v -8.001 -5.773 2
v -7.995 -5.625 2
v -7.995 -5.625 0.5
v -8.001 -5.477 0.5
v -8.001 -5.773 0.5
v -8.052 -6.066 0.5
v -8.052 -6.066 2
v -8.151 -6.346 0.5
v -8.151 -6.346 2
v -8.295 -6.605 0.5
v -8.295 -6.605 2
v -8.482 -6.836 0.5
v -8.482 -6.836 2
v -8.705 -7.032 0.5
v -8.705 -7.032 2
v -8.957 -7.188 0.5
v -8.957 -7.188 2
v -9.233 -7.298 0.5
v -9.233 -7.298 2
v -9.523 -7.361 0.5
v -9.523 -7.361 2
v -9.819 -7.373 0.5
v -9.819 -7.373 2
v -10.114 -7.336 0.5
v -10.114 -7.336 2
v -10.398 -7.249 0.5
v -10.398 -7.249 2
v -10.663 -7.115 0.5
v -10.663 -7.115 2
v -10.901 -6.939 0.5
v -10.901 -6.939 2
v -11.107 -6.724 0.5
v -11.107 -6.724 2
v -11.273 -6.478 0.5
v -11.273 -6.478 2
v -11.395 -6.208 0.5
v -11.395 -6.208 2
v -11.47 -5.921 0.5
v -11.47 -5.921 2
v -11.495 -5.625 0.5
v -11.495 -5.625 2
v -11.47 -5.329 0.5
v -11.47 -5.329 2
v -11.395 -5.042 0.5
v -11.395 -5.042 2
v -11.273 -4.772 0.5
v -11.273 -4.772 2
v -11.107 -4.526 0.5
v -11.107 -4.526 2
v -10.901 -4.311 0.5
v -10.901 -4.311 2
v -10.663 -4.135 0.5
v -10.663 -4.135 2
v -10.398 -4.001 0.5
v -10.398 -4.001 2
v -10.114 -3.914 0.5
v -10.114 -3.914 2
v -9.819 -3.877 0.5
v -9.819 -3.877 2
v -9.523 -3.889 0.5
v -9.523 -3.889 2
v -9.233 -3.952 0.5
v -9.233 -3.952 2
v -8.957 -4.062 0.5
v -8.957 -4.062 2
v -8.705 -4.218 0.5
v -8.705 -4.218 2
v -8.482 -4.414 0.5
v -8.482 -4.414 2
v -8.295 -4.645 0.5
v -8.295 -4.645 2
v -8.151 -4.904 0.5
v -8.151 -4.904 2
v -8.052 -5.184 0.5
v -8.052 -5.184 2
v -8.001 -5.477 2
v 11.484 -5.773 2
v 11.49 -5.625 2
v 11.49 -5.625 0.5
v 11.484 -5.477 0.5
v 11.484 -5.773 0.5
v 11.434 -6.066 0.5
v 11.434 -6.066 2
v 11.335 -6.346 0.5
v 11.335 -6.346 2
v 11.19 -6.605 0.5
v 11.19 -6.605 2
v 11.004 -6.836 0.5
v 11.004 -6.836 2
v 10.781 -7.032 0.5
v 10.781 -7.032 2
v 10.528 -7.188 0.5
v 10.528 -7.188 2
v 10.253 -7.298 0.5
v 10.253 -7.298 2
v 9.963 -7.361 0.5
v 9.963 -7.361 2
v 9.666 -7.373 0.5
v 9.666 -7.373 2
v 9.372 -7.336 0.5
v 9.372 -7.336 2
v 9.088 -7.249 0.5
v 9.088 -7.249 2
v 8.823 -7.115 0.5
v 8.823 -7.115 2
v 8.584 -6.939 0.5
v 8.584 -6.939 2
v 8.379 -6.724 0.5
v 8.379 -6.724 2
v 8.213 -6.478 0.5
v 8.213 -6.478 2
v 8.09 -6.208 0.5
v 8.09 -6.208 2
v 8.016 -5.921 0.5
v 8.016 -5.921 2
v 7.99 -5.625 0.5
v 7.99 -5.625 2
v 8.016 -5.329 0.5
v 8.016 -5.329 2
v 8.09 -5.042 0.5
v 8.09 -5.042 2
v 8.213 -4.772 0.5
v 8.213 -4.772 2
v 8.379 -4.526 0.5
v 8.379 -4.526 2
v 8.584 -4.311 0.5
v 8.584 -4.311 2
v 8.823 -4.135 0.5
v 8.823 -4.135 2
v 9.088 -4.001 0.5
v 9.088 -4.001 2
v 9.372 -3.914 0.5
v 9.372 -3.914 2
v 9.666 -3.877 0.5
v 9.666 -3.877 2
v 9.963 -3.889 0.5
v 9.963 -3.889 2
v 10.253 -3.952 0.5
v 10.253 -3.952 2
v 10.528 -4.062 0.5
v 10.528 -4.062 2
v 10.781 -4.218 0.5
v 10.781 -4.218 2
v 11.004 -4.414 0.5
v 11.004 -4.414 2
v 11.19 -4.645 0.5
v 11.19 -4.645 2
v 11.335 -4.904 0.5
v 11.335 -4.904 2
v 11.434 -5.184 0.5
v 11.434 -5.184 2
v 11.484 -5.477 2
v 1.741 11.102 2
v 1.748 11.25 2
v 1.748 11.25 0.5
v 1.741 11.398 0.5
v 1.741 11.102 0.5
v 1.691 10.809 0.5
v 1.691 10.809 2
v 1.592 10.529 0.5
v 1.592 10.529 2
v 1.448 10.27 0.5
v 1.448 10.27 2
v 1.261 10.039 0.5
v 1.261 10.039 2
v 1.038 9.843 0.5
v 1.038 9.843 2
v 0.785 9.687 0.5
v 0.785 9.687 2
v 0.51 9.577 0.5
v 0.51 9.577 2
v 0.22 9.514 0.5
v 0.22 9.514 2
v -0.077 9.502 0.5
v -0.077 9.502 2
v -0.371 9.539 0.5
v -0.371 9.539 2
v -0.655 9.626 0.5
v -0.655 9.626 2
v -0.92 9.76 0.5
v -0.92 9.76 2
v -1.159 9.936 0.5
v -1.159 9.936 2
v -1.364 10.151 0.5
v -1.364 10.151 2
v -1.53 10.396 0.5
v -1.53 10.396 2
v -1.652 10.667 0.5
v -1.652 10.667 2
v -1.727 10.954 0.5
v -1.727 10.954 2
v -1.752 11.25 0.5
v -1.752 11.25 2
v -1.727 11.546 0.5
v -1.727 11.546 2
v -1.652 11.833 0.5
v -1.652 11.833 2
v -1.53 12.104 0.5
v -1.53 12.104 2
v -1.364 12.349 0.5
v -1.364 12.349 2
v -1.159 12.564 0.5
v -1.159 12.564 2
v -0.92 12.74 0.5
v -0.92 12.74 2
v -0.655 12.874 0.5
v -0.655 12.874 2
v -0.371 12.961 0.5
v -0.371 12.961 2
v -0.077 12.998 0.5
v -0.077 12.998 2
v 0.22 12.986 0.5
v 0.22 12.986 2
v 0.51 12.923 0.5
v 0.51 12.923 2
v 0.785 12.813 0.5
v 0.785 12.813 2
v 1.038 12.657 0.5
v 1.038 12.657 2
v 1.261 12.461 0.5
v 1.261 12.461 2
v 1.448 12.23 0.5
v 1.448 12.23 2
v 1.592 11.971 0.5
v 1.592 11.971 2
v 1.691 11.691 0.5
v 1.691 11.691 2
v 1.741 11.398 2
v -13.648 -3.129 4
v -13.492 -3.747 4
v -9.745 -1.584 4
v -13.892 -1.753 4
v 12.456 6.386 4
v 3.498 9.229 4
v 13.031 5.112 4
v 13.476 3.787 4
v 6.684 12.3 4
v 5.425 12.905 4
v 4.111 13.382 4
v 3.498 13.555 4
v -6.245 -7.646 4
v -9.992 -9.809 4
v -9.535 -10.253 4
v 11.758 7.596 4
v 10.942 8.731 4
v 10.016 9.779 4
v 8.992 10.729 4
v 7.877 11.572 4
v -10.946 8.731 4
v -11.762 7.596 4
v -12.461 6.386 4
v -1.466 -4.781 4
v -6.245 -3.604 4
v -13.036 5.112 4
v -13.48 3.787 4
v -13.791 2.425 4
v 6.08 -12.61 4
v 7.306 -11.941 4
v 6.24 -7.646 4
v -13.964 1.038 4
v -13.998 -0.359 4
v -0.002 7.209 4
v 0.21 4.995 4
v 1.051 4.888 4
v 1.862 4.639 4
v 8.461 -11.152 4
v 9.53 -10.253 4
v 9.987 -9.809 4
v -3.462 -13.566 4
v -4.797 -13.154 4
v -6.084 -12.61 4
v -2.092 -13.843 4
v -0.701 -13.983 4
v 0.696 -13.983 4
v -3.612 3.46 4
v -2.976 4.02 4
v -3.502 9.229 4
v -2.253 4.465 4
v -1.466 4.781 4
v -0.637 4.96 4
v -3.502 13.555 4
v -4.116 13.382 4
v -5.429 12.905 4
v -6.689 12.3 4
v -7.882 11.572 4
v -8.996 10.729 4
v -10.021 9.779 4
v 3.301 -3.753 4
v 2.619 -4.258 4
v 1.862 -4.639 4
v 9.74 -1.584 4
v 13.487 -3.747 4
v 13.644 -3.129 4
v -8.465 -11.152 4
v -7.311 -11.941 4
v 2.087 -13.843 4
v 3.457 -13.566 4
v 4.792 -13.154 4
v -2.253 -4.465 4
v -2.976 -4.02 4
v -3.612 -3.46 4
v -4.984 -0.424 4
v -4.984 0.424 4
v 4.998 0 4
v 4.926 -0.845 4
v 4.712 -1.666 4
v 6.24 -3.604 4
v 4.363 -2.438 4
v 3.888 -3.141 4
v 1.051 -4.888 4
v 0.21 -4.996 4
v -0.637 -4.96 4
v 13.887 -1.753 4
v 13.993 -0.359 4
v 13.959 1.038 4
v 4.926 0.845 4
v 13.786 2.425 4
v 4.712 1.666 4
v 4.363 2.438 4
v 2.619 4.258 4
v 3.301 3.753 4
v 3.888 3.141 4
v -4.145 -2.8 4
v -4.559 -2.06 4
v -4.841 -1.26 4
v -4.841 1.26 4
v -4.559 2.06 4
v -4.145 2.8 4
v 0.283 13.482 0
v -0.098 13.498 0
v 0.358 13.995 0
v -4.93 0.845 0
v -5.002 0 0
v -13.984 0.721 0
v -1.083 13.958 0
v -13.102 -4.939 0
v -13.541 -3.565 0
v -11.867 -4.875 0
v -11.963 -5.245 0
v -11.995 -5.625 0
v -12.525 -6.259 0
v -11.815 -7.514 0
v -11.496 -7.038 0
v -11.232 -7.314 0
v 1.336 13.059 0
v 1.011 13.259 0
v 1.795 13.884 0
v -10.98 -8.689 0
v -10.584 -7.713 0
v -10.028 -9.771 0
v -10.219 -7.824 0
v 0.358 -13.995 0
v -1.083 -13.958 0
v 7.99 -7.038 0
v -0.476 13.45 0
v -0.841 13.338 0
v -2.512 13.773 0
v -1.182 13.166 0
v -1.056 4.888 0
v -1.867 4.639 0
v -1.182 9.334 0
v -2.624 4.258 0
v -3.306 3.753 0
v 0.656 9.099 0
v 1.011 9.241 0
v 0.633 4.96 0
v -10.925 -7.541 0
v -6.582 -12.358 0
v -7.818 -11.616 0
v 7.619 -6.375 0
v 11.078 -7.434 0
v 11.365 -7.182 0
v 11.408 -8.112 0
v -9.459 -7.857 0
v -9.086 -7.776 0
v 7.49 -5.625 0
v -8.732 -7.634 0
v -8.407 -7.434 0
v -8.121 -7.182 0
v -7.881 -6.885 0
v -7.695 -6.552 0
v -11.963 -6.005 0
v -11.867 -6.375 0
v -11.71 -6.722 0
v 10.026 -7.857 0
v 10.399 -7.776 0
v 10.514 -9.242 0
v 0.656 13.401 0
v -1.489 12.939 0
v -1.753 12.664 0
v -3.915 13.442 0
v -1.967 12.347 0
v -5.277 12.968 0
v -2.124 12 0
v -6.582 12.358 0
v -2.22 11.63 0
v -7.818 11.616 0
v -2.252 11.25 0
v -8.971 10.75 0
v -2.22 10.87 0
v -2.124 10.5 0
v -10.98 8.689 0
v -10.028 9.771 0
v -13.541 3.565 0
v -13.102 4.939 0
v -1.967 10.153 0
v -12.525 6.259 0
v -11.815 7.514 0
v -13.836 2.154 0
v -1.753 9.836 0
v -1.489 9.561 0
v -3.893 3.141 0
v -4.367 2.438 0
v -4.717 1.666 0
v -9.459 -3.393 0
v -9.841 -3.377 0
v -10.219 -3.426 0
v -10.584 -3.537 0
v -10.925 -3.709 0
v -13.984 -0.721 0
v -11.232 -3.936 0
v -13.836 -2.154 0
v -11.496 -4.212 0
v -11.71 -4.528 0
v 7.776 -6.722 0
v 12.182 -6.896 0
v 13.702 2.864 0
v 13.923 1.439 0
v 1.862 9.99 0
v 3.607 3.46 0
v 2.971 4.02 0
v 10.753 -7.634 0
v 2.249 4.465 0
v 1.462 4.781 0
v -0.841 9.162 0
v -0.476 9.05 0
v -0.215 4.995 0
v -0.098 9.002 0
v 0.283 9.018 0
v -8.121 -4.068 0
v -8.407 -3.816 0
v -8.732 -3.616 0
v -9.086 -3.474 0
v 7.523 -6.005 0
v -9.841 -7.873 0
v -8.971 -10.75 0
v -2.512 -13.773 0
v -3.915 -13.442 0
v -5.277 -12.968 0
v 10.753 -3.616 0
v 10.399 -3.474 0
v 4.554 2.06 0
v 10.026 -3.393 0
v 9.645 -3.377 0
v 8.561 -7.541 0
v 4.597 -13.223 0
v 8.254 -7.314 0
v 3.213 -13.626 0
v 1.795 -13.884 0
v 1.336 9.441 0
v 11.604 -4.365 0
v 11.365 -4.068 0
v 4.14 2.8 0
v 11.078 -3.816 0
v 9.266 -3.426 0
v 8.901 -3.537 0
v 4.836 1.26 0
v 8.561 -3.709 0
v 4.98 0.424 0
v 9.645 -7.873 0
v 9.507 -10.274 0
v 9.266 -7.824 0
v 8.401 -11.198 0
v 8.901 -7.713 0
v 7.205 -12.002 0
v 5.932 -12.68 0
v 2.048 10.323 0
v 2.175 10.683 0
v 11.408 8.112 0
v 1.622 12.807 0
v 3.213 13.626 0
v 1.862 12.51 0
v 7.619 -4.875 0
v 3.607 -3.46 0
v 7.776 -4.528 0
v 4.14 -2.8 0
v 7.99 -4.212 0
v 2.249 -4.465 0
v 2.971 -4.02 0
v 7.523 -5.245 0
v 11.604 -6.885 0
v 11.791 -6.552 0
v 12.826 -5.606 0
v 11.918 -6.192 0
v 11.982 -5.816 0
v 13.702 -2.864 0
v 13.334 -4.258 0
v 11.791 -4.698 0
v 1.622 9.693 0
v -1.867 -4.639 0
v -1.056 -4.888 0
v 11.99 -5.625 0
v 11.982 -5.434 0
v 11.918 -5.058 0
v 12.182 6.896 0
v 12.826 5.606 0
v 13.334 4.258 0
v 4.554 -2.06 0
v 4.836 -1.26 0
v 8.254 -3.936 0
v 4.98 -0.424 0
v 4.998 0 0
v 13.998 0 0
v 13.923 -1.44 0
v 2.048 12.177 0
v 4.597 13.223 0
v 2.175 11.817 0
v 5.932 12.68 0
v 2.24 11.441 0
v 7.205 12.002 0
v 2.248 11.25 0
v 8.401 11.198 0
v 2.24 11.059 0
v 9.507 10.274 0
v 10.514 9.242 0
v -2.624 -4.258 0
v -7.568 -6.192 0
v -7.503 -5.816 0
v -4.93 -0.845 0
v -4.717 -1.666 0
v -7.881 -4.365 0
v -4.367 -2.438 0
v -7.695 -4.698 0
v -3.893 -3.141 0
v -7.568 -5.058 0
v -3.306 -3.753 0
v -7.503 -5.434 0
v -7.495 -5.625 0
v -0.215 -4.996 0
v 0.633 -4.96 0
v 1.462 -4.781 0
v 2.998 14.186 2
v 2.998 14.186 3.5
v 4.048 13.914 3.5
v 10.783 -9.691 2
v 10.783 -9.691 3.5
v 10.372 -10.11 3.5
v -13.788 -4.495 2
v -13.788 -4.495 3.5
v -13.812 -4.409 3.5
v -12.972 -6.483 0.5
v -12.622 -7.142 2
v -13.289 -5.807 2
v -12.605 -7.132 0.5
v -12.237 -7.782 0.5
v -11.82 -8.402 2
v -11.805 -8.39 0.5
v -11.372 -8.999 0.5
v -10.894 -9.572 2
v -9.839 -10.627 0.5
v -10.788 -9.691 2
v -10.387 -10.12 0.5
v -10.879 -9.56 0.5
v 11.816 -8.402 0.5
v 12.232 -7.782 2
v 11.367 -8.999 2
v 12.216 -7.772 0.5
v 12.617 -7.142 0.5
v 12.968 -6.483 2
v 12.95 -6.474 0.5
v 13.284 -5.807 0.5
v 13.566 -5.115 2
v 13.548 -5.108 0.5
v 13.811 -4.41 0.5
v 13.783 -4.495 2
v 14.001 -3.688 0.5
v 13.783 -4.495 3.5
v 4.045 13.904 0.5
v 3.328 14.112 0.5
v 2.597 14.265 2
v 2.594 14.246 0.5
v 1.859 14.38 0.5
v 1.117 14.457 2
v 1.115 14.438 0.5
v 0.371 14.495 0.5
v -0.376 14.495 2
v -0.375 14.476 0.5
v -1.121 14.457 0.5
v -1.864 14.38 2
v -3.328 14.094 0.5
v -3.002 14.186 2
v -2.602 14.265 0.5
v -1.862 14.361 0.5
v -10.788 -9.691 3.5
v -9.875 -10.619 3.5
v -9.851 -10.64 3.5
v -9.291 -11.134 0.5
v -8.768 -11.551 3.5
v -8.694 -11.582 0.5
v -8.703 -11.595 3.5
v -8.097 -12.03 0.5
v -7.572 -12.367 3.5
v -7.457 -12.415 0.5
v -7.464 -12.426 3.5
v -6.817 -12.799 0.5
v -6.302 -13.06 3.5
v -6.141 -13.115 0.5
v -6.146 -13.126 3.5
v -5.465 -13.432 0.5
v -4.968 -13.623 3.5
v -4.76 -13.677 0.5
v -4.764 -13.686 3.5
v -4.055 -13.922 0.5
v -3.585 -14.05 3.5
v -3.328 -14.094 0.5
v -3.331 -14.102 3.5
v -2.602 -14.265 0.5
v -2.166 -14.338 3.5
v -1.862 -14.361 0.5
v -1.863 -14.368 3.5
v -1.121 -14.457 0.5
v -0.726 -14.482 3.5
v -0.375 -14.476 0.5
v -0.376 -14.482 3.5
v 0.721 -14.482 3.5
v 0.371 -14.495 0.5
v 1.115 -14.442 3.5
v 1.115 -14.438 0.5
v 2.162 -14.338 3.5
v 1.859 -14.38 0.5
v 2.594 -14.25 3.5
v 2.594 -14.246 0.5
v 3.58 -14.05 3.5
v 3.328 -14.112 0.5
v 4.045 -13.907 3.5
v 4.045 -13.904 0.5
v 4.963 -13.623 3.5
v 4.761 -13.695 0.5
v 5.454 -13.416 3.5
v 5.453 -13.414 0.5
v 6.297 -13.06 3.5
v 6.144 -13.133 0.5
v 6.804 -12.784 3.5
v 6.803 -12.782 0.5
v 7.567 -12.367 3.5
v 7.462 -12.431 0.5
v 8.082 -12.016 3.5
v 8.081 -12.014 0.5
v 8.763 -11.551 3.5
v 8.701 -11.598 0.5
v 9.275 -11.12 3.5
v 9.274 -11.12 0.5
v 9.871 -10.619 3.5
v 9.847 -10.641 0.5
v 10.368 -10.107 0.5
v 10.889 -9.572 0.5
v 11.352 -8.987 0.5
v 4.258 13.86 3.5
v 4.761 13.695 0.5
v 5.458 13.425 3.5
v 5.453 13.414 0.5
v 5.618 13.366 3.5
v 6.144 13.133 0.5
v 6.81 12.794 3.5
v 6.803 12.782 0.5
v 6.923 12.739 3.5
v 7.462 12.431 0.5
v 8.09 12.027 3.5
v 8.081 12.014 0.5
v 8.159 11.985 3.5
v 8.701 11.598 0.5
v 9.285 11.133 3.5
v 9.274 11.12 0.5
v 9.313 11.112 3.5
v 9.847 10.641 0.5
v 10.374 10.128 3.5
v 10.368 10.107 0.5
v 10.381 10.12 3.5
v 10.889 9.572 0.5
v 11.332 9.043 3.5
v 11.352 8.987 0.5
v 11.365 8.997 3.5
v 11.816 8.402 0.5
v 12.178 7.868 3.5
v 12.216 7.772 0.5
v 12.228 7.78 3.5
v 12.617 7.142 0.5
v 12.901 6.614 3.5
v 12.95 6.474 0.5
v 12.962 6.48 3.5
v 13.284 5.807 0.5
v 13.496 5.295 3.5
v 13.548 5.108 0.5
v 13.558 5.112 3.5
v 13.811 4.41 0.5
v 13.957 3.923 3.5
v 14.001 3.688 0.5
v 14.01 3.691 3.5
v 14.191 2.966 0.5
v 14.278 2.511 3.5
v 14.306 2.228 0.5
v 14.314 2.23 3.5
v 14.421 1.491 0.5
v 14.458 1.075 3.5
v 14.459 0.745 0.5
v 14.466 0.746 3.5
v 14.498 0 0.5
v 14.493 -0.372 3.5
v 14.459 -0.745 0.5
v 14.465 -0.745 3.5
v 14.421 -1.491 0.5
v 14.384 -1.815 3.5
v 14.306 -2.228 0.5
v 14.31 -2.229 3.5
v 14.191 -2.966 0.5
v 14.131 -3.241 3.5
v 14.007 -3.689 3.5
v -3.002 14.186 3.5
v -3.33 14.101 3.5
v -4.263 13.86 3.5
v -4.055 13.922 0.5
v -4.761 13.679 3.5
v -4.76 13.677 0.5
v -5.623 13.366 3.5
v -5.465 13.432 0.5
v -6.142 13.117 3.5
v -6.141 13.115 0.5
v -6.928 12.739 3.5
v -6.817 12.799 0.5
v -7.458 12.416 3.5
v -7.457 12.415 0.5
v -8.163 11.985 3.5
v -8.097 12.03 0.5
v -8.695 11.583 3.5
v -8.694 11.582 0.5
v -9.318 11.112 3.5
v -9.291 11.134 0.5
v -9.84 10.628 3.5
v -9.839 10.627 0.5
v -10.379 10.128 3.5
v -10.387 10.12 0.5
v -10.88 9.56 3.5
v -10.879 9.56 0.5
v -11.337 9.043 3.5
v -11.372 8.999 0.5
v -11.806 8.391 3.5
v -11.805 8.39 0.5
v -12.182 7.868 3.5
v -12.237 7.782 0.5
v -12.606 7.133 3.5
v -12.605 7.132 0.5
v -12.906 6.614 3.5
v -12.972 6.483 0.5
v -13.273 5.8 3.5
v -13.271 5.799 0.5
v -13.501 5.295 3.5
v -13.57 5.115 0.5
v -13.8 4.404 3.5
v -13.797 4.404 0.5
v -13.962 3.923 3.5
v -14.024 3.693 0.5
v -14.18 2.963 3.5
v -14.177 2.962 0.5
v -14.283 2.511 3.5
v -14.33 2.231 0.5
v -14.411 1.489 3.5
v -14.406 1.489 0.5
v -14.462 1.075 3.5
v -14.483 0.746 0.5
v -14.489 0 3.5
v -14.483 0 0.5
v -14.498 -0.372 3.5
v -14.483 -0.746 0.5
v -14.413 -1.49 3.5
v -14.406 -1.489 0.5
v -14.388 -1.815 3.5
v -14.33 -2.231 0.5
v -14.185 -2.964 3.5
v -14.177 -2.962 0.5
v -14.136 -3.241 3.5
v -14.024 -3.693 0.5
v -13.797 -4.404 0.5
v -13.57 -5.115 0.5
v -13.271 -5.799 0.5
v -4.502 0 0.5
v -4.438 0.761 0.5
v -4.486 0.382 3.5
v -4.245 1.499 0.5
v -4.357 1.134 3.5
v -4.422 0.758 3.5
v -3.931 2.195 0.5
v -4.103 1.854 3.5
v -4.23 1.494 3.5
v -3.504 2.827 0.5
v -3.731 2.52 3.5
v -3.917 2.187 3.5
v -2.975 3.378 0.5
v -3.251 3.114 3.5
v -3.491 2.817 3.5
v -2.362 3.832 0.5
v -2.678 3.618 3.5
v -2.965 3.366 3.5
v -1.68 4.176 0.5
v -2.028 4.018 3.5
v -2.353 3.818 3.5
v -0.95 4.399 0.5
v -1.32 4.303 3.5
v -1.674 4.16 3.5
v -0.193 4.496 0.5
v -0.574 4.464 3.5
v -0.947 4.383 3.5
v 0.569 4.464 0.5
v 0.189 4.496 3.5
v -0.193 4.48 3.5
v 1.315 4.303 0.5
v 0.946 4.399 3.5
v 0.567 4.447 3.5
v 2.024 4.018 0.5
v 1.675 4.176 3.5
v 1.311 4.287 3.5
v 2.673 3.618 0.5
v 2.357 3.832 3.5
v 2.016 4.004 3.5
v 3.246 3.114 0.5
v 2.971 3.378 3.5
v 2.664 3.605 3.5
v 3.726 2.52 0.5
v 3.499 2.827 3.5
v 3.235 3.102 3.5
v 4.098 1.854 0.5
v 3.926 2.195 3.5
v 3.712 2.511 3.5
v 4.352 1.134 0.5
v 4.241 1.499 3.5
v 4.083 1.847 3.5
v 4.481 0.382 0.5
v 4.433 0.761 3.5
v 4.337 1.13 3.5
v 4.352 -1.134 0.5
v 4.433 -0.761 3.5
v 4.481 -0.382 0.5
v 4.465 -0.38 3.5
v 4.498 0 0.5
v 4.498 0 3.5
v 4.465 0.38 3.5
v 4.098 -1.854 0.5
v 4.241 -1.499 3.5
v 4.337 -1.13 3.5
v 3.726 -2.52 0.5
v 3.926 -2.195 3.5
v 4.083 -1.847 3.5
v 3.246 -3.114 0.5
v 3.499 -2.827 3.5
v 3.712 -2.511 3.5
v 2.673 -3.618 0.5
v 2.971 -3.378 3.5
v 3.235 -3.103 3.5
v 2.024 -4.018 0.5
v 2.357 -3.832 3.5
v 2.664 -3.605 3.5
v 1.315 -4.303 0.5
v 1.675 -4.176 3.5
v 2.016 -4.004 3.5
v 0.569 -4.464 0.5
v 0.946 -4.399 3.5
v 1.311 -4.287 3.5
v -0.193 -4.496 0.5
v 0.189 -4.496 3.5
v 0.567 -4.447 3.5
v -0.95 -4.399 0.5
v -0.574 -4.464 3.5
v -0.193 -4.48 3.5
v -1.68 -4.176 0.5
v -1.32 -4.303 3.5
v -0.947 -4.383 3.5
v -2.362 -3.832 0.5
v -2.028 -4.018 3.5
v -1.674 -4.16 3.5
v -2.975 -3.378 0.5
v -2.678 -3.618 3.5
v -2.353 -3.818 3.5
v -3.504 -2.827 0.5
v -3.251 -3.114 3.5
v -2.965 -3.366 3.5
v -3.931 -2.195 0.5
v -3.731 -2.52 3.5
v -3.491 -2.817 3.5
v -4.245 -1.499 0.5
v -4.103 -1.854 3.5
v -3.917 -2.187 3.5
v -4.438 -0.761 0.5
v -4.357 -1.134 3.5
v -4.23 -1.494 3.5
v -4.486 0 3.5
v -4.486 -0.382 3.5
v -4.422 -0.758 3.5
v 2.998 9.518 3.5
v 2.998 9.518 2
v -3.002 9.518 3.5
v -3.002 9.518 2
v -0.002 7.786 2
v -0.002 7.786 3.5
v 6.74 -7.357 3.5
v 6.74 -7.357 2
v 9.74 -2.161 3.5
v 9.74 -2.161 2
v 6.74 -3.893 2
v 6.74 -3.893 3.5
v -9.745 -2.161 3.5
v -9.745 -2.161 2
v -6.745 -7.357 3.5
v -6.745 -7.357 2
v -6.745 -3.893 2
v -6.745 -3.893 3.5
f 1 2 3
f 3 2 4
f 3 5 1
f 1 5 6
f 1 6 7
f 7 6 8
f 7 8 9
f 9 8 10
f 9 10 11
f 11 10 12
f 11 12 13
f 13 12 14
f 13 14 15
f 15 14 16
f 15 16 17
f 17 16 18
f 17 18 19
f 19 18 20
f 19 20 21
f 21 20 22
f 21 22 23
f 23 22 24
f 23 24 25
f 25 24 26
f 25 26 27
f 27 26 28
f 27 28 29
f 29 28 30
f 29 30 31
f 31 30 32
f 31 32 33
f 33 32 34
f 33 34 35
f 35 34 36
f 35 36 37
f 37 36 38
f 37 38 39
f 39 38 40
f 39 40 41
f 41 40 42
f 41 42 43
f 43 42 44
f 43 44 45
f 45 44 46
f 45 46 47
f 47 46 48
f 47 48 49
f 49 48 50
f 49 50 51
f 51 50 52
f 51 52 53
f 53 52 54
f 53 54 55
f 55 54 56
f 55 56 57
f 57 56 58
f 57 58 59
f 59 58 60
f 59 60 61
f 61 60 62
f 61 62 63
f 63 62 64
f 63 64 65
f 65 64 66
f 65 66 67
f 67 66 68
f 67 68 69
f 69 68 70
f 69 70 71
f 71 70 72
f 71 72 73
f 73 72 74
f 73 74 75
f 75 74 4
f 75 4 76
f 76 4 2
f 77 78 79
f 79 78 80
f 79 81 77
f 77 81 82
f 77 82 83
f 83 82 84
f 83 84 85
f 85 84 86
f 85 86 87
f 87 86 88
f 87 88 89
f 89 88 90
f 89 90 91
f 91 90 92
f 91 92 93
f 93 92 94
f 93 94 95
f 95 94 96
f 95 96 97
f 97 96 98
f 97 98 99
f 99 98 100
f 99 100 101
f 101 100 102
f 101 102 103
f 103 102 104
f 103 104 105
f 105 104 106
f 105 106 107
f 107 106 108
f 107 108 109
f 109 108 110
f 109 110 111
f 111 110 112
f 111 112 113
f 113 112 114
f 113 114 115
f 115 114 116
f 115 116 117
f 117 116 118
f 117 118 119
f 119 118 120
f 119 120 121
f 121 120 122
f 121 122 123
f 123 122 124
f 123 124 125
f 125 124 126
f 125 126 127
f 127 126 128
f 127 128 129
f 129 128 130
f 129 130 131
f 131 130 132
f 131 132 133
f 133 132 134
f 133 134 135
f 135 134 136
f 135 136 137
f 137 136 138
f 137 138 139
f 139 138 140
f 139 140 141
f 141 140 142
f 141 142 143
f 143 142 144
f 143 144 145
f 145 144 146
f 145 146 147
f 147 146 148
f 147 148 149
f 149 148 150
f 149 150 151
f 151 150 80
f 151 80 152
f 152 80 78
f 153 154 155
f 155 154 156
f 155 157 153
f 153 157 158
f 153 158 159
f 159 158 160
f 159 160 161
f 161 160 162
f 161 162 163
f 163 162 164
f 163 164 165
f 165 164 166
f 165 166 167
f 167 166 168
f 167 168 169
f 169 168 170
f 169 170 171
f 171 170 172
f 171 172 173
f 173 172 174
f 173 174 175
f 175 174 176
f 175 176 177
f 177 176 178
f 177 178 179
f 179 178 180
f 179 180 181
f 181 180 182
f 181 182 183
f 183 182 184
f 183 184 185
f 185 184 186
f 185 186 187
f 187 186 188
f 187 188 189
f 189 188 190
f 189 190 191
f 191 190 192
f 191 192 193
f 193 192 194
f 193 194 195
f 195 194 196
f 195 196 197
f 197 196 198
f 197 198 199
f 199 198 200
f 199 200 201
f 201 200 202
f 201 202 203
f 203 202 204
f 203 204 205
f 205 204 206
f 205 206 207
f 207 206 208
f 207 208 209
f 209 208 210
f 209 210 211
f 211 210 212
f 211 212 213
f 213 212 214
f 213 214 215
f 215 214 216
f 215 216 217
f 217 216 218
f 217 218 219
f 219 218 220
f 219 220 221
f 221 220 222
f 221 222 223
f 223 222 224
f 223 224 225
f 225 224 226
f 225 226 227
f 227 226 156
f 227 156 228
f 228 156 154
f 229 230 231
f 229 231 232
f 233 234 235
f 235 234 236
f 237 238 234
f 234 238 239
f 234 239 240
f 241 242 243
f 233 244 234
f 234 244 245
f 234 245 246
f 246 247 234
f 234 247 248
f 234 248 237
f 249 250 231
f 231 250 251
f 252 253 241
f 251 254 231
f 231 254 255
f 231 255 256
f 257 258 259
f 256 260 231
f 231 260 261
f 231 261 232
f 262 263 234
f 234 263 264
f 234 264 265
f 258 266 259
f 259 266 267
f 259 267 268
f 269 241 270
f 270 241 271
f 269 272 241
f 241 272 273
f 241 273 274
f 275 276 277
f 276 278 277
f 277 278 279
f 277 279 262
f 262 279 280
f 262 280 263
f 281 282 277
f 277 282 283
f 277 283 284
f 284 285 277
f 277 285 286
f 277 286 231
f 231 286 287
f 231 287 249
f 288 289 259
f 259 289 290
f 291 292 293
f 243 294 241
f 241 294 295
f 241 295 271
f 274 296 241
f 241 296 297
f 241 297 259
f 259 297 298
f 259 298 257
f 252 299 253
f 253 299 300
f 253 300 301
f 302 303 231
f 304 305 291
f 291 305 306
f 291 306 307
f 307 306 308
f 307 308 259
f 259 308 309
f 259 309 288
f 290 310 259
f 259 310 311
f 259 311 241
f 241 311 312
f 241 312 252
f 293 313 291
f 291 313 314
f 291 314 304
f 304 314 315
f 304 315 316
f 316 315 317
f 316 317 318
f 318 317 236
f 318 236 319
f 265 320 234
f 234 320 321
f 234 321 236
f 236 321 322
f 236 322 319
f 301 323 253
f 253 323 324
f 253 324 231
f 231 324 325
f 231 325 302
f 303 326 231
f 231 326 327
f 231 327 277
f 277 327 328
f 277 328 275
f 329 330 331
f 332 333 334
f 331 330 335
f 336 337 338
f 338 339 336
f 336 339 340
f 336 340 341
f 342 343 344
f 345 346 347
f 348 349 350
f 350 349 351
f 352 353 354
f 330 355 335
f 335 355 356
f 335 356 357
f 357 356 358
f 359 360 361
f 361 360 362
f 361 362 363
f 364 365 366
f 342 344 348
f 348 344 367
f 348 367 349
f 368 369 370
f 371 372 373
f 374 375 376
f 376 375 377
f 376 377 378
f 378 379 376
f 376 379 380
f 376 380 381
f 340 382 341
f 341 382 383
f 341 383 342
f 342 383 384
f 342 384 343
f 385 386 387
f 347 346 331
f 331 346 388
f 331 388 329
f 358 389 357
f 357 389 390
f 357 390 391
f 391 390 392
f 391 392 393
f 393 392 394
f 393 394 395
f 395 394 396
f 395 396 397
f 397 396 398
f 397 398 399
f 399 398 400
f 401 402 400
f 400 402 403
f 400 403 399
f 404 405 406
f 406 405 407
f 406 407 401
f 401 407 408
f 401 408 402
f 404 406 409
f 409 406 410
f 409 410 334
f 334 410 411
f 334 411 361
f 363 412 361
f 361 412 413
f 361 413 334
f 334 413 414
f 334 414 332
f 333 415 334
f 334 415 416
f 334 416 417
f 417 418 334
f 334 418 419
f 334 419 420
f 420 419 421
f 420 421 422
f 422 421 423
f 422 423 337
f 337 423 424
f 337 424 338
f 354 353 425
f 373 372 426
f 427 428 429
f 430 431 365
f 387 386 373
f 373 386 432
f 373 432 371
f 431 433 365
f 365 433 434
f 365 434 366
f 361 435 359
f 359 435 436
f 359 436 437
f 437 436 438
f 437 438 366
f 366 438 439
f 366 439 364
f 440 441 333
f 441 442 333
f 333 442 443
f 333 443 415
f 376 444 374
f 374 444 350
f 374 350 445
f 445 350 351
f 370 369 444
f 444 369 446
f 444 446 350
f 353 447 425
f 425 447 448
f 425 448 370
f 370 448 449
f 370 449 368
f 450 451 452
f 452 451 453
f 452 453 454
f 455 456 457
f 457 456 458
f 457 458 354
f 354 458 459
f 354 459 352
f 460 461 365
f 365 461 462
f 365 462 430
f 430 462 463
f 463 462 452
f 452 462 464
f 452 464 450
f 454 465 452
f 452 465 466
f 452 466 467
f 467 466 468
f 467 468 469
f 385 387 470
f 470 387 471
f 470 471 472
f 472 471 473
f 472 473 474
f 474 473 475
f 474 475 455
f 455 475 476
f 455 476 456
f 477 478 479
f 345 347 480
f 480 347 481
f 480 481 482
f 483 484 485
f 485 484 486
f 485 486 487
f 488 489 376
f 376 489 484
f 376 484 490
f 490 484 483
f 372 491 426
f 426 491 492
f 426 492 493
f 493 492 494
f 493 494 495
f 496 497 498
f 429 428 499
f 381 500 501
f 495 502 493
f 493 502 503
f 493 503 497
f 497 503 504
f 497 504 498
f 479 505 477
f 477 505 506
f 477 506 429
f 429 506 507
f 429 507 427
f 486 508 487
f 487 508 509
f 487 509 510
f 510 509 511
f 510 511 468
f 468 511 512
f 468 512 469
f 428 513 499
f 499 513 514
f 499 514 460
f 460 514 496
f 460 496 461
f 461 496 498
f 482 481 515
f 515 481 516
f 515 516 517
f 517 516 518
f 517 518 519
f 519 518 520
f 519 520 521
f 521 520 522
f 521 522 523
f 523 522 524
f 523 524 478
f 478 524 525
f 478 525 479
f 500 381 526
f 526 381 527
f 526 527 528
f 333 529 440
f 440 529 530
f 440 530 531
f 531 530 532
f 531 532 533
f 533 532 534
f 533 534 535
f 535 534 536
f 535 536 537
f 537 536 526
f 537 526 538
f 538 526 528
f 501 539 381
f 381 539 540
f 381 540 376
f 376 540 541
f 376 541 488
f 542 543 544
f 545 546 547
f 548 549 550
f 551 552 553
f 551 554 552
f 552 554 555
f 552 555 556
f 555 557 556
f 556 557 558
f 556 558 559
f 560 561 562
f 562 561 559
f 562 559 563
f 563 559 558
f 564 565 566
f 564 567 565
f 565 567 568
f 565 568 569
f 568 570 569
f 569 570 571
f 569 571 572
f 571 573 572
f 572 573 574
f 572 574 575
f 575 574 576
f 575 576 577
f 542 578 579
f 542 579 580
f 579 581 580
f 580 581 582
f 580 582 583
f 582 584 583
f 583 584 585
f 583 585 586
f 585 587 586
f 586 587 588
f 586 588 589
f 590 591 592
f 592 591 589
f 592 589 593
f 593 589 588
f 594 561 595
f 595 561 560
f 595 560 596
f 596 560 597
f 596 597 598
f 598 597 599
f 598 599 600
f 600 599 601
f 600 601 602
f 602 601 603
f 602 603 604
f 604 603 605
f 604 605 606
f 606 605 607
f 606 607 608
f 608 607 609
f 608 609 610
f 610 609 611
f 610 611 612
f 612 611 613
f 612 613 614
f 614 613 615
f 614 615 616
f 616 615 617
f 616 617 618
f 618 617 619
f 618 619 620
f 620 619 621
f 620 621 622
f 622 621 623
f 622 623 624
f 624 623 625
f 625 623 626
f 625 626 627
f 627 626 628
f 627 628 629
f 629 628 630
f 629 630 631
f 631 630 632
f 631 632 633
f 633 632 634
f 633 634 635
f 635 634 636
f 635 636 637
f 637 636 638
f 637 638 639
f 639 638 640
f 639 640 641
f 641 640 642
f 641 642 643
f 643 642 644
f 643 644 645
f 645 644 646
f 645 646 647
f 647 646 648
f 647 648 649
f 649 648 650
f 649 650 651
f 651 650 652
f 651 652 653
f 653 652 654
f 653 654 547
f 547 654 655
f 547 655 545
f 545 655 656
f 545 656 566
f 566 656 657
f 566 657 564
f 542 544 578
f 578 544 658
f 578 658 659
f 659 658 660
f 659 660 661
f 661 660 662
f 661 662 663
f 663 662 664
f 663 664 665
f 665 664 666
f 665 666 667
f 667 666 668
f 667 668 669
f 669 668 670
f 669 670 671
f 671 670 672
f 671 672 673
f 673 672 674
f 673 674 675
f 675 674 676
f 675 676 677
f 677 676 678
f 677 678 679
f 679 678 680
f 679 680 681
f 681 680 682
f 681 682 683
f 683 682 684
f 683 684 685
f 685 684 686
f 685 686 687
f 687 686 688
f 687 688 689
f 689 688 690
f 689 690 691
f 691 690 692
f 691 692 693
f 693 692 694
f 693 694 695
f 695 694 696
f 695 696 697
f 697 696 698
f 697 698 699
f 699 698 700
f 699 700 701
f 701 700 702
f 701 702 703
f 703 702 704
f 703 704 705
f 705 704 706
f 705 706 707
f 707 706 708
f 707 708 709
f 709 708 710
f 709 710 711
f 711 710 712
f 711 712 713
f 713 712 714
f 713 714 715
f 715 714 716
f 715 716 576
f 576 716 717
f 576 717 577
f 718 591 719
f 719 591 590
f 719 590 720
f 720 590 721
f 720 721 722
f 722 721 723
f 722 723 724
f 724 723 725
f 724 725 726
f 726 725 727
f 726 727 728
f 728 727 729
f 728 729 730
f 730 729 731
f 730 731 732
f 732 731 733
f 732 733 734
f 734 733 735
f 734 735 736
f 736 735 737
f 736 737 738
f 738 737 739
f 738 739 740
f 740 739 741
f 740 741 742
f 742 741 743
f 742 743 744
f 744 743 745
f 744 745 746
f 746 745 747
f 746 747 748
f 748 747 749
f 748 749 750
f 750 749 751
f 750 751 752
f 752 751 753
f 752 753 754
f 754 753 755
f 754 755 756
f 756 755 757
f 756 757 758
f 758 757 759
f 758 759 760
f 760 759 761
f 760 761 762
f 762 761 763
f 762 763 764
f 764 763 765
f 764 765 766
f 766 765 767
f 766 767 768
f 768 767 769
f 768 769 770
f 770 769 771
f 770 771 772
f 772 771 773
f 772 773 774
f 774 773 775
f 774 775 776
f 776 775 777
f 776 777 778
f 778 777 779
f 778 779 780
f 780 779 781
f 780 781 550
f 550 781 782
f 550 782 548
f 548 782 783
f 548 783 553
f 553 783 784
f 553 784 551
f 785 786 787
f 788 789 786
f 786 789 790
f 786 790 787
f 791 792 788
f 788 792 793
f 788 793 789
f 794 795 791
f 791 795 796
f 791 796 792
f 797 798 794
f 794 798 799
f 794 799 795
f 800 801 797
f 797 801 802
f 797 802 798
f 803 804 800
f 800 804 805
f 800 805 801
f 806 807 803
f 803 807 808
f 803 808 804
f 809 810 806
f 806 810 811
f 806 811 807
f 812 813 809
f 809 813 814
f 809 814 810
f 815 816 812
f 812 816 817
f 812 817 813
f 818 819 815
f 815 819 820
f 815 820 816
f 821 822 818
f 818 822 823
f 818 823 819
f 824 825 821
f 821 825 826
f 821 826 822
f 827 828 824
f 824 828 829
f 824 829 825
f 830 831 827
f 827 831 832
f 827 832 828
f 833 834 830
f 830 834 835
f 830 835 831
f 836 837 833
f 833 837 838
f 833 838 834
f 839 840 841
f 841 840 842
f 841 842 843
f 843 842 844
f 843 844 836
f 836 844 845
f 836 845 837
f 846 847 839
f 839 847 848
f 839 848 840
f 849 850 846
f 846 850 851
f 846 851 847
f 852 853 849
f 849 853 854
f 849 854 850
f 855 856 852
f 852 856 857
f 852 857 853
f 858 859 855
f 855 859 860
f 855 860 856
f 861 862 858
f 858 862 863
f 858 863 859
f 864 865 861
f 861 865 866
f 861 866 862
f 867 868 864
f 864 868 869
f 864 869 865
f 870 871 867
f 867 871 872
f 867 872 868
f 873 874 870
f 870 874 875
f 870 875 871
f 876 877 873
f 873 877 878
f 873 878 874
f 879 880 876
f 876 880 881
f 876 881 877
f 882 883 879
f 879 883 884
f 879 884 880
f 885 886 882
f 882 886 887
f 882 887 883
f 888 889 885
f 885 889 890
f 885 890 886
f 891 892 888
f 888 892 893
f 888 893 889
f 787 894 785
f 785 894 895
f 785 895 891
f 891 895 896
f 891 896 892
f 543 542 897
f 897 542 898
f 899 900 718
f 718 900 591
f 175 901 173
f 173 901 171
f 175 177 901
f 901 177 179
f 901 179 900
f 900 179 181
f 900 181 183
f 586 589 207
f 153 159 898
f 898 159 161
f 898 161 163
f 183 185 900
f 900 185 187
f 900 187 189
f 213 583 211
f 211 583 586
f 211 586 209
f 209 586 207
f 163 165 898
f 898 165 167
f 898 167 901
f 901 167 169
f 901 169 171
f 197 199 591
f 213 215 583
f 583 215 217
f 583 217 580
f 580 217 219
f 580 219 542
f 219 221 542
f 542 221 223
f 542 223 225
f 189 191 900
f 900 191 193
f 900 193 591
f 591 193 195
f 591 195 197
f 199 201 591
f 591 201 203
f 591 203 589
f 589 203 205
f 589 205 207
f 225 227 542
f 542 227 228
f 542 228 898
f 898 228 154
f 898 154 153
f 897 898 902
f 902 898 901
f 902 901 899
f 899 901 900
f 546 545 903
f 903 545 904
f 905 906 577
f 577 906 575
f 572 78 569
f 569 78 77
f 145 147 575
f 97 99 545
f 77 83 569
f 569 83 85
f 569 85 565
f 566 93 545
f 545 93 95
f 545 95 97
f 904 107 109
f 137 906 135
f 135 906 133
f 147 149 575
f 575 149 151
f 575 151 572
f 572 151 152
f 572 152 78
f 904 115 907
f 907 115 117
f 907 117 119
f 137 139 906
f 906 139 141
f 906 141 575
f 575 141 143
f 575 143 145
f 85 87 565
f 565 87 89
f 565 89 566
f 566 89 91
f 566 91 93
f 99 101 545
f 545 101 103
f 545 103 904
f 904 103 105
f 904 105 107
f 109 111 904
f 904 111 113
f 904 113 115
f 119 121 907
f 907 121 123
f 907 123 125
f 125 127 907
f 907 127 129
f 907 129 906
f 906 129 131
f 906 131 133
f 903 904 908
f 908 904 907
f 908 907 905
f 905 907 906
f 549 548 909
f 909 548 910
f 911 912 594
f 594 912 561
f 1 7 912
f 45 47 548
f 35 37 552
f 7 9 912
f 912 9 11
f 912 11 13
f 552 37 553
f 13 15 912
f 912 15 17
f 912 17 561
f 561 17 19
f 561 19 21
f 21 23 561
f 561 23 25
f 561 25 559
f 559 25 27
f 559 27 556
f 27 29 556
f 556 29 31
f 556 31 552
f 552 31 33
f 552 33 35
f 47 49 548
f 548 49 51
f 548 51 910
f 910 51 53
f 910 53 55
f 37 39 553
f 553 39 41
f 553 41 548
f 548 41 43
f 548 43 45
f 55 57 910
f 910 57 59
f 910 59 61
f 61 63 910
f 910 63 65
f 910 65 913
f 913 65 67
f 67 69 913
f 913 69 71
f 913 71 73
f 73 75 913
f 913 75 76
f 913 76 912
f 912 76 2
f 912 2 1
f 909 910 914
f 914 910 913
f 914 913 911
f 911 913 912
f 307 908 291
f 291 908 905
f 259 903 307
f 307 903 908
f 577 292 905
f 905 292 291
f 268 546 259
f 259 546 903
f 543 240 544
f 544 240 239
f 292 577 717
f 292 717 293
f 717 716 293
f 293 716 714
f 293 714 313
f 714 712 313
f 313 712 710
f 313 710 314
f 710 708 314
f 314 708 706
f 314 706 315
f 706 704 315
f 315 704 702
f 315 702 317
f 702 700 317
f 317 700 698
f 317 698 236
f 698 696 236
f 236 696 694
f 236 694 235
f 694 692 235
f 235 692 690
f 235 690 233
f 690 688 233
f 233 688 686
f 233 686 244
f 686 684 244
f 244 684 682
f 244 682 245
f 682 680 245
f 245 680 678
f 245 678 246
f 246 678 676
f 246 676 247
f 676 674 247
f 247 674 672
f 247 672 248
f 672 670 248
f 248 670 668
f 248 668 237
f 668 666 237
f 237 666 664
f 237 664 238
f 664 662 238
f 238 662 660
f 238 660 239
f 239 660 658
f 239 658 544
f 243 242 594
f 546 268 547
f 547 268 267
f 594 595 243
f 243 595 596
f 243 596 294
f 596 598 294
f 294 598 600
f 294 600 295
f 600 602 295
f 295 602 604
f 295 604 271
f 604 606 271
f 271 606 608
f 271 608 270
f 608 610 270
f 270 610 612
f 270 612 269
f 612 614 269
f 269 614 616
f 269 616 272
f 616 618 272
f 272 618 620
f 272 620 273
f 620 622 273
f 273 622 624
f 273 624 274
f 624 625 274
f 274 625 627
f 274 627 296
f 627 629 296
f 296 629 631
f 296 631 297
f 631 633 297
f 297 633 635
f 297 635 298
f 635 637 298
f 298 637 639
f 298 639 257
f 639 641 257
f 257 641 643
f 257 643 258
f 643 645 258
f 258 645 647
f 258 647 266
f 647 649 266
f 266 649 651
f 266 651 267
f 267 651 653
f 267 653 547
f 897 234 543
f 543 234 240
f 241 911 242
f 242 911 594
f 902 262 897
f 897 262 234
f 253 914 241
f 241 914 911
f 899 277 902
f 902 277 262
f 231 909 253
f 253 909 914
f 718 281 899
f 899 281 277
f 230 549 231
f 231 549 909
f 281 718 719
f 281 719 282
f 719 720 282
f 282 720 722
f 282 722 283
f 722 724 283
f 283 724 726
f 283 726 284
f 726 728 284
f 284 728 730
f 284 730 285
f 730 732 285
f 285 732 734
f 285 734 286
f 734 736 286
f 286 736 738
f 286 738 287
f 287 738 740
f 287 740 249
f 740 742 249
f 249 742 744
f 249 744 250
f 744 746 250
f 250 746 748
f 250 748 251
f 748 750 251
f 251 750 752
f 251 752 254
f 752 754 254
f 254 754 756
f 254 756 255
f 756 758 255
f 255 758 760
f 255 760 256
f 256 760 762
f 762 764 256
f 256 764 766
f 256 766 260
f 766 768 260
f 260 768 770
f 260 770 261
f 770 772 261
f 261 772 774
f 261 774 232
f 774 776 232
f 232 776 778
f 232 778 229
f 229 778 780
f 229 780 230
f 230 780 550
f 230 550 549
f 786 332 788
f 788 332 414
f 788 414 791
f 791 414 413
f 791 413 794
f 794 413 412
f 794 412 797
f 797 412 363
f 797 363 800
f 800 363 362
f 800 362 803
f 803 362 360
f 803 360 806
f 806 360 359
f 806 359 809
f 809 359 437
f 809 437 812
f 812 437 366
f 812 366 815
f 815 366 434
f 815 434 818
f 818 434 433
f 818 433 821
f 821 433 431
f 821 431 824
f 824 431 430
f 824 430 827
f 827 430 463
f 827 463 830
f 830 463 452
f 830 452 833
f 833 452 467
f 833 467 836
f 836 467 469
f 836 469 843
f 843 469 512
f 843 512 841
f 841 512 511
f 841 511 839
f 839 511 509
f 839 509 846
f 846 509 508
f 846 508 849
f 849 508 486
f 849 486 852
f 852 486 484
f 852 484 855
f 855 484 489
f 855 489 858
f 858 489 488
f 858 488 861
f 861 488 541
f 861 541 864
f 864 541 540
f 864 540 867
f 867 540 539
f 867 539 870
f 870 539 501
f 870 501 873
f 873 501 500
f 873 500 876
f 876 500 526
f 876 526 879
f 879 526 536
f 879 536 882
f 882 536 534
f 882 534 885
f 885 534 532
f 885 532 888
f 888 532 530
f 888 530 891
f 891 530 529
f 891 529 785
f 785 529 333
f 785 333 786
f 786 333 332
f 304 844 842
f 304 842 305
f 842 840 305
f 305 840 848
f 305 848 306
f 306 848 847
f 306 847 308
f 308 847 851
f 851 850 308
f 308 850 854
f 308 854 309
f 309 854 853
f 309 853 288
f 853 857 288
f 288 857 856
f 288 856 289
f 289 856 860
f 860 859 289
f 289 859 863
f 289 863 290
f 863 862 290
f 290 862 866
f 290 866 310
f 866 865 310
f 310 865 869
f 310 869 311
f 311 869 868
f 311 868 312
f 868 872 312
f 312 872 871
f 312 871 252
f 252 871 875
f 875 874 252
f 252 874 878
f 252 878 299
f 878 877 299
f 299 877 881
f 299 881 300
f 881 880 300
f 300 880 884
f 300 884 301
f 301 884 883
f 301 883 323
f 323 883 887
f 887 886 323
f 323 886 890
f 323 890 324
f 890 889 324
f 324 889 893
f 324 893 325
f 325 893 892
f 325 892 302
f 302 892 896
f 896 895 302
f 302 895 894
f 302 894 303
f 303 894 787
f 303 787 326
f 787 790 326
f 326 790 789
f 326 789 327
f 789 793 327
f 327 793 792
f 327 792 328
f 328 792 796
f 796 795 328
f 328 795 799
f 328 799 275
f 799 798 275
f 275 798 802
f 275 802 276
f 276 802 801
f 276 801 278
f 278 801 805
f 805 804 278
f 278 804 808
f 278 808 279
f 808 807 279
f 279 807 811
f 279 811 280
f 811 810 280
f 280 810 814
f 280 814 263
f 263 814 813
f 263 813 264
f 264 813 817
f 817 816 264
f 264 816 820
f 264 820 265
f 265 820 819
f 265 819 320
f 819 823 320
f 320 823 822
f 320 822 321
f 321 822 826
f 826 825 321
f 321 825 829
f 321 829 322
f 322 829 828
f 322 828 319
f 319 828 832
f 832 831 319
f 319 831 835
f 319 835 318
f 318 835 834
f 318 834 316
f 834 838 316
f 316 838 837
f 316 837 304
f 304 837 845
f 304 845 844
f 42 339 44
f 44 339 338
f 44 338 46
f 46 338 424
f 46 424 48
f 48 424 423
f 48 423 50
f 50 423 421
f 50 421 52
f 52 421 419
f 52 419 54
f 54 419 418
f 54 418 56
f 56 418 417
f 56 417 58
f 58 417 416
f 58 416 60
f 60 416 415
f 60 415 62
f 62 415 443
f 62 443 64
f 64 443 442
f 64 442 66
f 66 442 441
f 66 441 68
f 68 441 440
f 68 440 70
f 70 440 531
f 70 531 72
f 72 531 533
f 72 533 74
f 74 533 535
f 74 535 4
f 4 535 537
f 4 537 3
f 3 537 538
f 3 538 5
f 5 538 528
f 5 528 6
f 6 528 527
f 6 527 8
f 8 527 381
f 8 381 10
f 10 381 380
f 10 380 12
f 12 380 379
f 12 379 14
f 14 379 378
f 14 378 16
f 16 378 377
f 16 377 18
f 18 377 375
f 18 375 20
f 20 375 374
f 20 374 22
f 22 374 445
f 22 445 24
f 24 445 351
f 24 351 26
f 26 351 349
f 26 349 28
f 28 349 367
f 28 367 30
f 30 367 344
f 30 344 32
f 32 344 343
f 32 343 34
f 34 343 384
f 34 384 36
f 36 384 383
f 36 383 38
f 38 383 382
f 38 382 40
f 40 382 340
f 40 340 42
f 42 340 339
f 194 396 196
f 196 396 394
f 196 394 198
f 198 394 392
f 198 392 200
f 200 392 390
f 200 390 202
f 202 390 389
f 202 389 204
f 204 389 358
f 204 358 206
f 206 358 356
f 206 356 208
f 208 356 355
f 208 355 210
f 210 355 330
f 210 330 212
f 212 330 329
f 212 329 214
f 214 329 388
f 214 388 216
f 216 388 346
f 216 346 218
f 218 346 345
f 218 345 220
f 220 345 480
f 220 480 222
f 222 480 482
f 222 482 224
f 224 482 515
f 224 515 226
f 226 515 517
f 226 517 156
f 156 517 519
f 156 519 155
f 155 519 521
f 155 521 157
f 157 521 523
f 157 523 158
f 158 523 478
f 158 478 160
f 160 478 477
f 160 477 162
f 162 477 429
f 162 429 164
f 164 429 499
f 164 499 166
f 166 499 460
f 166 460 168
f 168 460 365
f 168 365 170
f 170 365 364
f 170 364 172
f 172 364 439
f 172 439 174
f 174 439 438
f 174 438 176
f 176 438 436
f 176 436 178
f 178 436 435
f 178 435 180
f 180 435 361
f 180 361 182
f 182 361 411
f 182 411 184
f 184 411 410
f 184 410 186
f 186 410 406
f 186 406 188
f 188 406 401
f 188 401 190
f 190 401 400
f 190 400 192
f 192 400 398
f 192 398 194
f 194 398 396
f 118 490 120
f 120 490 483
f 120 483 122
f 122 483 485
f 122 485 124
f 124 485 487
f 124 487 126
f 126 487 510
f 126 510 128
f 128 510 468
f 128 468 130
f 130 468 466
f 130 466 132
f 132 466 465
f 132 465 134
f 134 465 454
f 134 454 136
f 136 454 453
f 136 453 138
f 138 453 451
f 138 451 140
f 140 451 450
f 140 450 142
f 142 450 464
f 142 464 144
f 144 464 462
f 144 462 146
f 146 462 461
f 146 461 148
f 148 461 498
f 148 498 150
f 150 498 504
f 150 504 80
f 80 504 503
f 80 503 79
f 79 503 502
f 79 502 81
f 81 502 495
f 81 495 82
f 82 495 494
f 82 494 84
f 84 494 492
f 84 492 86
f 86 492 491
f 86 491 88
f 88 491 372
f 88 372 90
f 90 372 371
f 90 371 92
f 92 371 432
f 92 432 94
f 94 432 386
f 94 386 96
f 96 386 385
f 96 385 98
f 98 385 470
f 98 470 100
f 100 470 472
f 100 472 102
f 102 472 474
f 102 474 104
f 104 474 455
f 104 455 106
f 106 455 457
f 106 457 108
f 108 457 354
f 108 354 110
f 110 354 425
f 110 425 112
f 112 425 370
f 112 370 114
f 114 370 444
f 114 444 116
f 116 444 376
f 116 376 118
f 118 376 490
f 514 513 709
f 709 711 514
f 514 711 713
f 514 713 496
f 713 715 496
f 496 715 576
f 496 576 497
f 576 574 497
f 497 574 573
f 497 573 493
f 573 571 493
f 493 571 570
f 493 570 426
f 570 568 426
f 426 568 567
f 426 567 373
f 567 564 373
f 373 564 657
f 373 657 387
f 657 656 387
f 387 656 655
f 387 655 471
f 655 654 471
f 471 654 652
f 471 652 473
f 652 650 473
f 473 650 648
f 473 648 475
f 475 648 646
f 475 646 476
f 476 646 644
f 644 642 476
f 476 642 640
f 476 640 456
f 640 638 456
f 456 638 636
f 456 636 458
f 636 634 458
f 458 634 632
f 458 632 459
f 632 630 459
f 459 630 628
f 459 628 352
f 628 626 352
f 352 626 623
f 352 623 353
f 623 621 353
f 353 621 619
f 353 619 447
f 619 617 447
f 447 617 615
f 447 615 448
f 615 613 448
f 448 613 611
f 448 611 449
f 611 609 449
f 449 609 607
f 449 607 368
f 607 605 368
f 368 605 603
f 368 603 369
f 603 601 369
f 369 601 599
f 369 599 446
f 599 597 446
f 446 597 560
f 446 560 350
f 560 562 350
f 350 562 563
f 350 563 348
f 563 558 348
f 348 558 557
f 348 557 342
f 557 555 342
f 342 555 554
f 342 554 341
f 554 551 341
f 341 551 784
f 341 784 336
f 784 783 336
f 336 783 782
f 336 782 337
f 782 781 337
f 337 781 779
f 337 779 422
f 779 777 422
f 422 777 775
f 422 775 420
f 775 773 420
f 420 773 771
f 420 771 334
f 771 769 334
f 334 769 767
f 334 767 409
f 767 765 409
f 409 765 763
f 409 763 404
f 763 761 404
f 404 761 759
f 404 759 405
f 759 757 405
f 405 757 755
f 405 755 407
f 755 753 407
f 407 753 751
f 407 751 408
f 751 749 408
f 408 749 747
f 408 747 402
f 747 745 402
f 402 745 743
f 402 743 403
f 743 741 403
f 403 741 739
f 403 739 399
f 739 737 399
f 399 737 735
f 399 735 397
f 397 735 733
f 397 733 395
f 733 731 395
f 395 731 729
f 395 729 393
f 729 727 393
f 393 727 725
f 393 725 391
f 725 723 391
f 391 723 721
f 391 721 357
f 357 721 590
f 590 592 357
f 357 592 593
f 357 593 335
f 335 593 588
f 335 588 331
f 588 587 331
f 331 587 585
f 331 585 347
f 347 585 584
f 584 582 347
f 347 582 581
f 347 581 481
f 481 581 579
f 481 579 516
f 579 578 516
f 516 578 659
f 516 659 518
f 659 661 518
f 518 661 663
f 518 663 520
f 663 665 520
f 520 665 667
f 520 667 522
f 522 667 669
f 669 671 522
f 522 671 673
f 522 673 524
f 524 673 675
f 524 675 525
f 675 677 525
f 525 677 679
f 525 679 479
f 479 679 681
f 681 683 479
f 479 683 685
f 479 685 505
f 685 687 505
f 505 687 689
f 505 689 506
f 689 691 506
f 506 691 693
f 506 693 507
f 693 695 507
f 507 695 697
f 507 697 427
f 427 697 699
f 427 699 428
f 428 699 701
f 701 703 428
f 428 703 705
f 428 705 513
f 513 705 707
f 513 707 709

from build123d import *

# Parameters (mm, degrees)
SKETCH4_R           = 14.5
SKETCH4_R_2         = 1.75
SKETCH4_R_3         = 4.5
BOSS_EXTRUDE5_DEPTH = 4
CUT_EXTRUDE1_DEPTH  = 2
CHAMFER1_SIZE       = 0.5


with BuildPart() as part:
    # Sketch4 → Boss-Extrude5 (new body)
    with BuildSketch(Plane.XY):
        Circle(SKETCH4_R)
        with Locations((0, 11.25)):
            Circle(SKETCH4_R_2, mode=Mode.SUBTRACT)
        with Locations((9.742785793, -5.625)):
            Circle(SKETCH4_R_2, mode=Mode.SUBTRACT)
        with Locations((-9.742785793, -5.625)):
            Circle(SKETCH4_R_2, mode=Mode.SUBTRACT)
        Circle(SKETCH4_R_3, mode=Mode.SUBTRACT)
    extrude(amount=BOSS_EXTRUDE5_DEPTH)

    # Sketch5 → Cut-Extrude1 (cut)
    with BuildSketch(Plane.XY.offset(4)):
        Polygon((12.742785793, -3.892949192), (9.742785793, -2.160898385), (6.742785793, -3.892949192), (6.742785793, -7.357050808), (9.742785793, -9.089101615), (11.4748366, -10.089101615), (14.4748366, -4.892949192), align=None)
        Polygon((-3, 12.982050808), (-3, 9.517949192), (0, 7.785898385), (3, 9.517949192), (3, 12.982050808), (3, 14.982050808), (-3, 14.982050808), align=None)
        Polygon((-9.742785793, -9.089101615), (-6.742785793, -7.357050808), (-6.742785793, -3.892949192), (-9.742785793, -2.160898385), (-12.742785793, -3.892949192), (-14.4748366, -4.892949192), (-11.4748366, -10.089101615), align=None)
    extrude(amount=-CUT_EXTRUDE1_DEPTH, mode=Mode.SUBTRACT)

    # Chamfer1
    chamfer1_edges = [part.edges().sort_by_distance(p)[0] for p in [
        (-11.492785793, -5.625, 0),
        (-4.5, 0, 0),
        (-4.5, 0, 4),
        (-14.5, 0, 0),
        (-12.557368355, 7.25, 4),
        (3, 11.852105076, 4),
        (-3, 11.852105076, 4),
        (-1.5, 8.651923789, 4),
        (1.5, 8.651923789, 4),
        (11.263880326, 9.130991184, 4),
        (-1.75, 11.25, 0),
        (8.764224084, -8.524128749, 4),
        (11.764224084, -3.327976327, 4),
        (8.242785793, -3.026923789, 4),
        (6.742785793, -5.625, 4),
        (0, -14.5, 4),
        (-11.764224084, -3.327976327, 4),
        (-8.764224084, -8.524128749, 4),
        (-6.742785793, -5.625, 4),
        (-8.242785793, -3.026923789, 4),
        (7.992785793, -5.625, 0),
    ]]
    chamfer(chamfer1_edges, length=CHAMFER1_SIZE)


solid = part.part
